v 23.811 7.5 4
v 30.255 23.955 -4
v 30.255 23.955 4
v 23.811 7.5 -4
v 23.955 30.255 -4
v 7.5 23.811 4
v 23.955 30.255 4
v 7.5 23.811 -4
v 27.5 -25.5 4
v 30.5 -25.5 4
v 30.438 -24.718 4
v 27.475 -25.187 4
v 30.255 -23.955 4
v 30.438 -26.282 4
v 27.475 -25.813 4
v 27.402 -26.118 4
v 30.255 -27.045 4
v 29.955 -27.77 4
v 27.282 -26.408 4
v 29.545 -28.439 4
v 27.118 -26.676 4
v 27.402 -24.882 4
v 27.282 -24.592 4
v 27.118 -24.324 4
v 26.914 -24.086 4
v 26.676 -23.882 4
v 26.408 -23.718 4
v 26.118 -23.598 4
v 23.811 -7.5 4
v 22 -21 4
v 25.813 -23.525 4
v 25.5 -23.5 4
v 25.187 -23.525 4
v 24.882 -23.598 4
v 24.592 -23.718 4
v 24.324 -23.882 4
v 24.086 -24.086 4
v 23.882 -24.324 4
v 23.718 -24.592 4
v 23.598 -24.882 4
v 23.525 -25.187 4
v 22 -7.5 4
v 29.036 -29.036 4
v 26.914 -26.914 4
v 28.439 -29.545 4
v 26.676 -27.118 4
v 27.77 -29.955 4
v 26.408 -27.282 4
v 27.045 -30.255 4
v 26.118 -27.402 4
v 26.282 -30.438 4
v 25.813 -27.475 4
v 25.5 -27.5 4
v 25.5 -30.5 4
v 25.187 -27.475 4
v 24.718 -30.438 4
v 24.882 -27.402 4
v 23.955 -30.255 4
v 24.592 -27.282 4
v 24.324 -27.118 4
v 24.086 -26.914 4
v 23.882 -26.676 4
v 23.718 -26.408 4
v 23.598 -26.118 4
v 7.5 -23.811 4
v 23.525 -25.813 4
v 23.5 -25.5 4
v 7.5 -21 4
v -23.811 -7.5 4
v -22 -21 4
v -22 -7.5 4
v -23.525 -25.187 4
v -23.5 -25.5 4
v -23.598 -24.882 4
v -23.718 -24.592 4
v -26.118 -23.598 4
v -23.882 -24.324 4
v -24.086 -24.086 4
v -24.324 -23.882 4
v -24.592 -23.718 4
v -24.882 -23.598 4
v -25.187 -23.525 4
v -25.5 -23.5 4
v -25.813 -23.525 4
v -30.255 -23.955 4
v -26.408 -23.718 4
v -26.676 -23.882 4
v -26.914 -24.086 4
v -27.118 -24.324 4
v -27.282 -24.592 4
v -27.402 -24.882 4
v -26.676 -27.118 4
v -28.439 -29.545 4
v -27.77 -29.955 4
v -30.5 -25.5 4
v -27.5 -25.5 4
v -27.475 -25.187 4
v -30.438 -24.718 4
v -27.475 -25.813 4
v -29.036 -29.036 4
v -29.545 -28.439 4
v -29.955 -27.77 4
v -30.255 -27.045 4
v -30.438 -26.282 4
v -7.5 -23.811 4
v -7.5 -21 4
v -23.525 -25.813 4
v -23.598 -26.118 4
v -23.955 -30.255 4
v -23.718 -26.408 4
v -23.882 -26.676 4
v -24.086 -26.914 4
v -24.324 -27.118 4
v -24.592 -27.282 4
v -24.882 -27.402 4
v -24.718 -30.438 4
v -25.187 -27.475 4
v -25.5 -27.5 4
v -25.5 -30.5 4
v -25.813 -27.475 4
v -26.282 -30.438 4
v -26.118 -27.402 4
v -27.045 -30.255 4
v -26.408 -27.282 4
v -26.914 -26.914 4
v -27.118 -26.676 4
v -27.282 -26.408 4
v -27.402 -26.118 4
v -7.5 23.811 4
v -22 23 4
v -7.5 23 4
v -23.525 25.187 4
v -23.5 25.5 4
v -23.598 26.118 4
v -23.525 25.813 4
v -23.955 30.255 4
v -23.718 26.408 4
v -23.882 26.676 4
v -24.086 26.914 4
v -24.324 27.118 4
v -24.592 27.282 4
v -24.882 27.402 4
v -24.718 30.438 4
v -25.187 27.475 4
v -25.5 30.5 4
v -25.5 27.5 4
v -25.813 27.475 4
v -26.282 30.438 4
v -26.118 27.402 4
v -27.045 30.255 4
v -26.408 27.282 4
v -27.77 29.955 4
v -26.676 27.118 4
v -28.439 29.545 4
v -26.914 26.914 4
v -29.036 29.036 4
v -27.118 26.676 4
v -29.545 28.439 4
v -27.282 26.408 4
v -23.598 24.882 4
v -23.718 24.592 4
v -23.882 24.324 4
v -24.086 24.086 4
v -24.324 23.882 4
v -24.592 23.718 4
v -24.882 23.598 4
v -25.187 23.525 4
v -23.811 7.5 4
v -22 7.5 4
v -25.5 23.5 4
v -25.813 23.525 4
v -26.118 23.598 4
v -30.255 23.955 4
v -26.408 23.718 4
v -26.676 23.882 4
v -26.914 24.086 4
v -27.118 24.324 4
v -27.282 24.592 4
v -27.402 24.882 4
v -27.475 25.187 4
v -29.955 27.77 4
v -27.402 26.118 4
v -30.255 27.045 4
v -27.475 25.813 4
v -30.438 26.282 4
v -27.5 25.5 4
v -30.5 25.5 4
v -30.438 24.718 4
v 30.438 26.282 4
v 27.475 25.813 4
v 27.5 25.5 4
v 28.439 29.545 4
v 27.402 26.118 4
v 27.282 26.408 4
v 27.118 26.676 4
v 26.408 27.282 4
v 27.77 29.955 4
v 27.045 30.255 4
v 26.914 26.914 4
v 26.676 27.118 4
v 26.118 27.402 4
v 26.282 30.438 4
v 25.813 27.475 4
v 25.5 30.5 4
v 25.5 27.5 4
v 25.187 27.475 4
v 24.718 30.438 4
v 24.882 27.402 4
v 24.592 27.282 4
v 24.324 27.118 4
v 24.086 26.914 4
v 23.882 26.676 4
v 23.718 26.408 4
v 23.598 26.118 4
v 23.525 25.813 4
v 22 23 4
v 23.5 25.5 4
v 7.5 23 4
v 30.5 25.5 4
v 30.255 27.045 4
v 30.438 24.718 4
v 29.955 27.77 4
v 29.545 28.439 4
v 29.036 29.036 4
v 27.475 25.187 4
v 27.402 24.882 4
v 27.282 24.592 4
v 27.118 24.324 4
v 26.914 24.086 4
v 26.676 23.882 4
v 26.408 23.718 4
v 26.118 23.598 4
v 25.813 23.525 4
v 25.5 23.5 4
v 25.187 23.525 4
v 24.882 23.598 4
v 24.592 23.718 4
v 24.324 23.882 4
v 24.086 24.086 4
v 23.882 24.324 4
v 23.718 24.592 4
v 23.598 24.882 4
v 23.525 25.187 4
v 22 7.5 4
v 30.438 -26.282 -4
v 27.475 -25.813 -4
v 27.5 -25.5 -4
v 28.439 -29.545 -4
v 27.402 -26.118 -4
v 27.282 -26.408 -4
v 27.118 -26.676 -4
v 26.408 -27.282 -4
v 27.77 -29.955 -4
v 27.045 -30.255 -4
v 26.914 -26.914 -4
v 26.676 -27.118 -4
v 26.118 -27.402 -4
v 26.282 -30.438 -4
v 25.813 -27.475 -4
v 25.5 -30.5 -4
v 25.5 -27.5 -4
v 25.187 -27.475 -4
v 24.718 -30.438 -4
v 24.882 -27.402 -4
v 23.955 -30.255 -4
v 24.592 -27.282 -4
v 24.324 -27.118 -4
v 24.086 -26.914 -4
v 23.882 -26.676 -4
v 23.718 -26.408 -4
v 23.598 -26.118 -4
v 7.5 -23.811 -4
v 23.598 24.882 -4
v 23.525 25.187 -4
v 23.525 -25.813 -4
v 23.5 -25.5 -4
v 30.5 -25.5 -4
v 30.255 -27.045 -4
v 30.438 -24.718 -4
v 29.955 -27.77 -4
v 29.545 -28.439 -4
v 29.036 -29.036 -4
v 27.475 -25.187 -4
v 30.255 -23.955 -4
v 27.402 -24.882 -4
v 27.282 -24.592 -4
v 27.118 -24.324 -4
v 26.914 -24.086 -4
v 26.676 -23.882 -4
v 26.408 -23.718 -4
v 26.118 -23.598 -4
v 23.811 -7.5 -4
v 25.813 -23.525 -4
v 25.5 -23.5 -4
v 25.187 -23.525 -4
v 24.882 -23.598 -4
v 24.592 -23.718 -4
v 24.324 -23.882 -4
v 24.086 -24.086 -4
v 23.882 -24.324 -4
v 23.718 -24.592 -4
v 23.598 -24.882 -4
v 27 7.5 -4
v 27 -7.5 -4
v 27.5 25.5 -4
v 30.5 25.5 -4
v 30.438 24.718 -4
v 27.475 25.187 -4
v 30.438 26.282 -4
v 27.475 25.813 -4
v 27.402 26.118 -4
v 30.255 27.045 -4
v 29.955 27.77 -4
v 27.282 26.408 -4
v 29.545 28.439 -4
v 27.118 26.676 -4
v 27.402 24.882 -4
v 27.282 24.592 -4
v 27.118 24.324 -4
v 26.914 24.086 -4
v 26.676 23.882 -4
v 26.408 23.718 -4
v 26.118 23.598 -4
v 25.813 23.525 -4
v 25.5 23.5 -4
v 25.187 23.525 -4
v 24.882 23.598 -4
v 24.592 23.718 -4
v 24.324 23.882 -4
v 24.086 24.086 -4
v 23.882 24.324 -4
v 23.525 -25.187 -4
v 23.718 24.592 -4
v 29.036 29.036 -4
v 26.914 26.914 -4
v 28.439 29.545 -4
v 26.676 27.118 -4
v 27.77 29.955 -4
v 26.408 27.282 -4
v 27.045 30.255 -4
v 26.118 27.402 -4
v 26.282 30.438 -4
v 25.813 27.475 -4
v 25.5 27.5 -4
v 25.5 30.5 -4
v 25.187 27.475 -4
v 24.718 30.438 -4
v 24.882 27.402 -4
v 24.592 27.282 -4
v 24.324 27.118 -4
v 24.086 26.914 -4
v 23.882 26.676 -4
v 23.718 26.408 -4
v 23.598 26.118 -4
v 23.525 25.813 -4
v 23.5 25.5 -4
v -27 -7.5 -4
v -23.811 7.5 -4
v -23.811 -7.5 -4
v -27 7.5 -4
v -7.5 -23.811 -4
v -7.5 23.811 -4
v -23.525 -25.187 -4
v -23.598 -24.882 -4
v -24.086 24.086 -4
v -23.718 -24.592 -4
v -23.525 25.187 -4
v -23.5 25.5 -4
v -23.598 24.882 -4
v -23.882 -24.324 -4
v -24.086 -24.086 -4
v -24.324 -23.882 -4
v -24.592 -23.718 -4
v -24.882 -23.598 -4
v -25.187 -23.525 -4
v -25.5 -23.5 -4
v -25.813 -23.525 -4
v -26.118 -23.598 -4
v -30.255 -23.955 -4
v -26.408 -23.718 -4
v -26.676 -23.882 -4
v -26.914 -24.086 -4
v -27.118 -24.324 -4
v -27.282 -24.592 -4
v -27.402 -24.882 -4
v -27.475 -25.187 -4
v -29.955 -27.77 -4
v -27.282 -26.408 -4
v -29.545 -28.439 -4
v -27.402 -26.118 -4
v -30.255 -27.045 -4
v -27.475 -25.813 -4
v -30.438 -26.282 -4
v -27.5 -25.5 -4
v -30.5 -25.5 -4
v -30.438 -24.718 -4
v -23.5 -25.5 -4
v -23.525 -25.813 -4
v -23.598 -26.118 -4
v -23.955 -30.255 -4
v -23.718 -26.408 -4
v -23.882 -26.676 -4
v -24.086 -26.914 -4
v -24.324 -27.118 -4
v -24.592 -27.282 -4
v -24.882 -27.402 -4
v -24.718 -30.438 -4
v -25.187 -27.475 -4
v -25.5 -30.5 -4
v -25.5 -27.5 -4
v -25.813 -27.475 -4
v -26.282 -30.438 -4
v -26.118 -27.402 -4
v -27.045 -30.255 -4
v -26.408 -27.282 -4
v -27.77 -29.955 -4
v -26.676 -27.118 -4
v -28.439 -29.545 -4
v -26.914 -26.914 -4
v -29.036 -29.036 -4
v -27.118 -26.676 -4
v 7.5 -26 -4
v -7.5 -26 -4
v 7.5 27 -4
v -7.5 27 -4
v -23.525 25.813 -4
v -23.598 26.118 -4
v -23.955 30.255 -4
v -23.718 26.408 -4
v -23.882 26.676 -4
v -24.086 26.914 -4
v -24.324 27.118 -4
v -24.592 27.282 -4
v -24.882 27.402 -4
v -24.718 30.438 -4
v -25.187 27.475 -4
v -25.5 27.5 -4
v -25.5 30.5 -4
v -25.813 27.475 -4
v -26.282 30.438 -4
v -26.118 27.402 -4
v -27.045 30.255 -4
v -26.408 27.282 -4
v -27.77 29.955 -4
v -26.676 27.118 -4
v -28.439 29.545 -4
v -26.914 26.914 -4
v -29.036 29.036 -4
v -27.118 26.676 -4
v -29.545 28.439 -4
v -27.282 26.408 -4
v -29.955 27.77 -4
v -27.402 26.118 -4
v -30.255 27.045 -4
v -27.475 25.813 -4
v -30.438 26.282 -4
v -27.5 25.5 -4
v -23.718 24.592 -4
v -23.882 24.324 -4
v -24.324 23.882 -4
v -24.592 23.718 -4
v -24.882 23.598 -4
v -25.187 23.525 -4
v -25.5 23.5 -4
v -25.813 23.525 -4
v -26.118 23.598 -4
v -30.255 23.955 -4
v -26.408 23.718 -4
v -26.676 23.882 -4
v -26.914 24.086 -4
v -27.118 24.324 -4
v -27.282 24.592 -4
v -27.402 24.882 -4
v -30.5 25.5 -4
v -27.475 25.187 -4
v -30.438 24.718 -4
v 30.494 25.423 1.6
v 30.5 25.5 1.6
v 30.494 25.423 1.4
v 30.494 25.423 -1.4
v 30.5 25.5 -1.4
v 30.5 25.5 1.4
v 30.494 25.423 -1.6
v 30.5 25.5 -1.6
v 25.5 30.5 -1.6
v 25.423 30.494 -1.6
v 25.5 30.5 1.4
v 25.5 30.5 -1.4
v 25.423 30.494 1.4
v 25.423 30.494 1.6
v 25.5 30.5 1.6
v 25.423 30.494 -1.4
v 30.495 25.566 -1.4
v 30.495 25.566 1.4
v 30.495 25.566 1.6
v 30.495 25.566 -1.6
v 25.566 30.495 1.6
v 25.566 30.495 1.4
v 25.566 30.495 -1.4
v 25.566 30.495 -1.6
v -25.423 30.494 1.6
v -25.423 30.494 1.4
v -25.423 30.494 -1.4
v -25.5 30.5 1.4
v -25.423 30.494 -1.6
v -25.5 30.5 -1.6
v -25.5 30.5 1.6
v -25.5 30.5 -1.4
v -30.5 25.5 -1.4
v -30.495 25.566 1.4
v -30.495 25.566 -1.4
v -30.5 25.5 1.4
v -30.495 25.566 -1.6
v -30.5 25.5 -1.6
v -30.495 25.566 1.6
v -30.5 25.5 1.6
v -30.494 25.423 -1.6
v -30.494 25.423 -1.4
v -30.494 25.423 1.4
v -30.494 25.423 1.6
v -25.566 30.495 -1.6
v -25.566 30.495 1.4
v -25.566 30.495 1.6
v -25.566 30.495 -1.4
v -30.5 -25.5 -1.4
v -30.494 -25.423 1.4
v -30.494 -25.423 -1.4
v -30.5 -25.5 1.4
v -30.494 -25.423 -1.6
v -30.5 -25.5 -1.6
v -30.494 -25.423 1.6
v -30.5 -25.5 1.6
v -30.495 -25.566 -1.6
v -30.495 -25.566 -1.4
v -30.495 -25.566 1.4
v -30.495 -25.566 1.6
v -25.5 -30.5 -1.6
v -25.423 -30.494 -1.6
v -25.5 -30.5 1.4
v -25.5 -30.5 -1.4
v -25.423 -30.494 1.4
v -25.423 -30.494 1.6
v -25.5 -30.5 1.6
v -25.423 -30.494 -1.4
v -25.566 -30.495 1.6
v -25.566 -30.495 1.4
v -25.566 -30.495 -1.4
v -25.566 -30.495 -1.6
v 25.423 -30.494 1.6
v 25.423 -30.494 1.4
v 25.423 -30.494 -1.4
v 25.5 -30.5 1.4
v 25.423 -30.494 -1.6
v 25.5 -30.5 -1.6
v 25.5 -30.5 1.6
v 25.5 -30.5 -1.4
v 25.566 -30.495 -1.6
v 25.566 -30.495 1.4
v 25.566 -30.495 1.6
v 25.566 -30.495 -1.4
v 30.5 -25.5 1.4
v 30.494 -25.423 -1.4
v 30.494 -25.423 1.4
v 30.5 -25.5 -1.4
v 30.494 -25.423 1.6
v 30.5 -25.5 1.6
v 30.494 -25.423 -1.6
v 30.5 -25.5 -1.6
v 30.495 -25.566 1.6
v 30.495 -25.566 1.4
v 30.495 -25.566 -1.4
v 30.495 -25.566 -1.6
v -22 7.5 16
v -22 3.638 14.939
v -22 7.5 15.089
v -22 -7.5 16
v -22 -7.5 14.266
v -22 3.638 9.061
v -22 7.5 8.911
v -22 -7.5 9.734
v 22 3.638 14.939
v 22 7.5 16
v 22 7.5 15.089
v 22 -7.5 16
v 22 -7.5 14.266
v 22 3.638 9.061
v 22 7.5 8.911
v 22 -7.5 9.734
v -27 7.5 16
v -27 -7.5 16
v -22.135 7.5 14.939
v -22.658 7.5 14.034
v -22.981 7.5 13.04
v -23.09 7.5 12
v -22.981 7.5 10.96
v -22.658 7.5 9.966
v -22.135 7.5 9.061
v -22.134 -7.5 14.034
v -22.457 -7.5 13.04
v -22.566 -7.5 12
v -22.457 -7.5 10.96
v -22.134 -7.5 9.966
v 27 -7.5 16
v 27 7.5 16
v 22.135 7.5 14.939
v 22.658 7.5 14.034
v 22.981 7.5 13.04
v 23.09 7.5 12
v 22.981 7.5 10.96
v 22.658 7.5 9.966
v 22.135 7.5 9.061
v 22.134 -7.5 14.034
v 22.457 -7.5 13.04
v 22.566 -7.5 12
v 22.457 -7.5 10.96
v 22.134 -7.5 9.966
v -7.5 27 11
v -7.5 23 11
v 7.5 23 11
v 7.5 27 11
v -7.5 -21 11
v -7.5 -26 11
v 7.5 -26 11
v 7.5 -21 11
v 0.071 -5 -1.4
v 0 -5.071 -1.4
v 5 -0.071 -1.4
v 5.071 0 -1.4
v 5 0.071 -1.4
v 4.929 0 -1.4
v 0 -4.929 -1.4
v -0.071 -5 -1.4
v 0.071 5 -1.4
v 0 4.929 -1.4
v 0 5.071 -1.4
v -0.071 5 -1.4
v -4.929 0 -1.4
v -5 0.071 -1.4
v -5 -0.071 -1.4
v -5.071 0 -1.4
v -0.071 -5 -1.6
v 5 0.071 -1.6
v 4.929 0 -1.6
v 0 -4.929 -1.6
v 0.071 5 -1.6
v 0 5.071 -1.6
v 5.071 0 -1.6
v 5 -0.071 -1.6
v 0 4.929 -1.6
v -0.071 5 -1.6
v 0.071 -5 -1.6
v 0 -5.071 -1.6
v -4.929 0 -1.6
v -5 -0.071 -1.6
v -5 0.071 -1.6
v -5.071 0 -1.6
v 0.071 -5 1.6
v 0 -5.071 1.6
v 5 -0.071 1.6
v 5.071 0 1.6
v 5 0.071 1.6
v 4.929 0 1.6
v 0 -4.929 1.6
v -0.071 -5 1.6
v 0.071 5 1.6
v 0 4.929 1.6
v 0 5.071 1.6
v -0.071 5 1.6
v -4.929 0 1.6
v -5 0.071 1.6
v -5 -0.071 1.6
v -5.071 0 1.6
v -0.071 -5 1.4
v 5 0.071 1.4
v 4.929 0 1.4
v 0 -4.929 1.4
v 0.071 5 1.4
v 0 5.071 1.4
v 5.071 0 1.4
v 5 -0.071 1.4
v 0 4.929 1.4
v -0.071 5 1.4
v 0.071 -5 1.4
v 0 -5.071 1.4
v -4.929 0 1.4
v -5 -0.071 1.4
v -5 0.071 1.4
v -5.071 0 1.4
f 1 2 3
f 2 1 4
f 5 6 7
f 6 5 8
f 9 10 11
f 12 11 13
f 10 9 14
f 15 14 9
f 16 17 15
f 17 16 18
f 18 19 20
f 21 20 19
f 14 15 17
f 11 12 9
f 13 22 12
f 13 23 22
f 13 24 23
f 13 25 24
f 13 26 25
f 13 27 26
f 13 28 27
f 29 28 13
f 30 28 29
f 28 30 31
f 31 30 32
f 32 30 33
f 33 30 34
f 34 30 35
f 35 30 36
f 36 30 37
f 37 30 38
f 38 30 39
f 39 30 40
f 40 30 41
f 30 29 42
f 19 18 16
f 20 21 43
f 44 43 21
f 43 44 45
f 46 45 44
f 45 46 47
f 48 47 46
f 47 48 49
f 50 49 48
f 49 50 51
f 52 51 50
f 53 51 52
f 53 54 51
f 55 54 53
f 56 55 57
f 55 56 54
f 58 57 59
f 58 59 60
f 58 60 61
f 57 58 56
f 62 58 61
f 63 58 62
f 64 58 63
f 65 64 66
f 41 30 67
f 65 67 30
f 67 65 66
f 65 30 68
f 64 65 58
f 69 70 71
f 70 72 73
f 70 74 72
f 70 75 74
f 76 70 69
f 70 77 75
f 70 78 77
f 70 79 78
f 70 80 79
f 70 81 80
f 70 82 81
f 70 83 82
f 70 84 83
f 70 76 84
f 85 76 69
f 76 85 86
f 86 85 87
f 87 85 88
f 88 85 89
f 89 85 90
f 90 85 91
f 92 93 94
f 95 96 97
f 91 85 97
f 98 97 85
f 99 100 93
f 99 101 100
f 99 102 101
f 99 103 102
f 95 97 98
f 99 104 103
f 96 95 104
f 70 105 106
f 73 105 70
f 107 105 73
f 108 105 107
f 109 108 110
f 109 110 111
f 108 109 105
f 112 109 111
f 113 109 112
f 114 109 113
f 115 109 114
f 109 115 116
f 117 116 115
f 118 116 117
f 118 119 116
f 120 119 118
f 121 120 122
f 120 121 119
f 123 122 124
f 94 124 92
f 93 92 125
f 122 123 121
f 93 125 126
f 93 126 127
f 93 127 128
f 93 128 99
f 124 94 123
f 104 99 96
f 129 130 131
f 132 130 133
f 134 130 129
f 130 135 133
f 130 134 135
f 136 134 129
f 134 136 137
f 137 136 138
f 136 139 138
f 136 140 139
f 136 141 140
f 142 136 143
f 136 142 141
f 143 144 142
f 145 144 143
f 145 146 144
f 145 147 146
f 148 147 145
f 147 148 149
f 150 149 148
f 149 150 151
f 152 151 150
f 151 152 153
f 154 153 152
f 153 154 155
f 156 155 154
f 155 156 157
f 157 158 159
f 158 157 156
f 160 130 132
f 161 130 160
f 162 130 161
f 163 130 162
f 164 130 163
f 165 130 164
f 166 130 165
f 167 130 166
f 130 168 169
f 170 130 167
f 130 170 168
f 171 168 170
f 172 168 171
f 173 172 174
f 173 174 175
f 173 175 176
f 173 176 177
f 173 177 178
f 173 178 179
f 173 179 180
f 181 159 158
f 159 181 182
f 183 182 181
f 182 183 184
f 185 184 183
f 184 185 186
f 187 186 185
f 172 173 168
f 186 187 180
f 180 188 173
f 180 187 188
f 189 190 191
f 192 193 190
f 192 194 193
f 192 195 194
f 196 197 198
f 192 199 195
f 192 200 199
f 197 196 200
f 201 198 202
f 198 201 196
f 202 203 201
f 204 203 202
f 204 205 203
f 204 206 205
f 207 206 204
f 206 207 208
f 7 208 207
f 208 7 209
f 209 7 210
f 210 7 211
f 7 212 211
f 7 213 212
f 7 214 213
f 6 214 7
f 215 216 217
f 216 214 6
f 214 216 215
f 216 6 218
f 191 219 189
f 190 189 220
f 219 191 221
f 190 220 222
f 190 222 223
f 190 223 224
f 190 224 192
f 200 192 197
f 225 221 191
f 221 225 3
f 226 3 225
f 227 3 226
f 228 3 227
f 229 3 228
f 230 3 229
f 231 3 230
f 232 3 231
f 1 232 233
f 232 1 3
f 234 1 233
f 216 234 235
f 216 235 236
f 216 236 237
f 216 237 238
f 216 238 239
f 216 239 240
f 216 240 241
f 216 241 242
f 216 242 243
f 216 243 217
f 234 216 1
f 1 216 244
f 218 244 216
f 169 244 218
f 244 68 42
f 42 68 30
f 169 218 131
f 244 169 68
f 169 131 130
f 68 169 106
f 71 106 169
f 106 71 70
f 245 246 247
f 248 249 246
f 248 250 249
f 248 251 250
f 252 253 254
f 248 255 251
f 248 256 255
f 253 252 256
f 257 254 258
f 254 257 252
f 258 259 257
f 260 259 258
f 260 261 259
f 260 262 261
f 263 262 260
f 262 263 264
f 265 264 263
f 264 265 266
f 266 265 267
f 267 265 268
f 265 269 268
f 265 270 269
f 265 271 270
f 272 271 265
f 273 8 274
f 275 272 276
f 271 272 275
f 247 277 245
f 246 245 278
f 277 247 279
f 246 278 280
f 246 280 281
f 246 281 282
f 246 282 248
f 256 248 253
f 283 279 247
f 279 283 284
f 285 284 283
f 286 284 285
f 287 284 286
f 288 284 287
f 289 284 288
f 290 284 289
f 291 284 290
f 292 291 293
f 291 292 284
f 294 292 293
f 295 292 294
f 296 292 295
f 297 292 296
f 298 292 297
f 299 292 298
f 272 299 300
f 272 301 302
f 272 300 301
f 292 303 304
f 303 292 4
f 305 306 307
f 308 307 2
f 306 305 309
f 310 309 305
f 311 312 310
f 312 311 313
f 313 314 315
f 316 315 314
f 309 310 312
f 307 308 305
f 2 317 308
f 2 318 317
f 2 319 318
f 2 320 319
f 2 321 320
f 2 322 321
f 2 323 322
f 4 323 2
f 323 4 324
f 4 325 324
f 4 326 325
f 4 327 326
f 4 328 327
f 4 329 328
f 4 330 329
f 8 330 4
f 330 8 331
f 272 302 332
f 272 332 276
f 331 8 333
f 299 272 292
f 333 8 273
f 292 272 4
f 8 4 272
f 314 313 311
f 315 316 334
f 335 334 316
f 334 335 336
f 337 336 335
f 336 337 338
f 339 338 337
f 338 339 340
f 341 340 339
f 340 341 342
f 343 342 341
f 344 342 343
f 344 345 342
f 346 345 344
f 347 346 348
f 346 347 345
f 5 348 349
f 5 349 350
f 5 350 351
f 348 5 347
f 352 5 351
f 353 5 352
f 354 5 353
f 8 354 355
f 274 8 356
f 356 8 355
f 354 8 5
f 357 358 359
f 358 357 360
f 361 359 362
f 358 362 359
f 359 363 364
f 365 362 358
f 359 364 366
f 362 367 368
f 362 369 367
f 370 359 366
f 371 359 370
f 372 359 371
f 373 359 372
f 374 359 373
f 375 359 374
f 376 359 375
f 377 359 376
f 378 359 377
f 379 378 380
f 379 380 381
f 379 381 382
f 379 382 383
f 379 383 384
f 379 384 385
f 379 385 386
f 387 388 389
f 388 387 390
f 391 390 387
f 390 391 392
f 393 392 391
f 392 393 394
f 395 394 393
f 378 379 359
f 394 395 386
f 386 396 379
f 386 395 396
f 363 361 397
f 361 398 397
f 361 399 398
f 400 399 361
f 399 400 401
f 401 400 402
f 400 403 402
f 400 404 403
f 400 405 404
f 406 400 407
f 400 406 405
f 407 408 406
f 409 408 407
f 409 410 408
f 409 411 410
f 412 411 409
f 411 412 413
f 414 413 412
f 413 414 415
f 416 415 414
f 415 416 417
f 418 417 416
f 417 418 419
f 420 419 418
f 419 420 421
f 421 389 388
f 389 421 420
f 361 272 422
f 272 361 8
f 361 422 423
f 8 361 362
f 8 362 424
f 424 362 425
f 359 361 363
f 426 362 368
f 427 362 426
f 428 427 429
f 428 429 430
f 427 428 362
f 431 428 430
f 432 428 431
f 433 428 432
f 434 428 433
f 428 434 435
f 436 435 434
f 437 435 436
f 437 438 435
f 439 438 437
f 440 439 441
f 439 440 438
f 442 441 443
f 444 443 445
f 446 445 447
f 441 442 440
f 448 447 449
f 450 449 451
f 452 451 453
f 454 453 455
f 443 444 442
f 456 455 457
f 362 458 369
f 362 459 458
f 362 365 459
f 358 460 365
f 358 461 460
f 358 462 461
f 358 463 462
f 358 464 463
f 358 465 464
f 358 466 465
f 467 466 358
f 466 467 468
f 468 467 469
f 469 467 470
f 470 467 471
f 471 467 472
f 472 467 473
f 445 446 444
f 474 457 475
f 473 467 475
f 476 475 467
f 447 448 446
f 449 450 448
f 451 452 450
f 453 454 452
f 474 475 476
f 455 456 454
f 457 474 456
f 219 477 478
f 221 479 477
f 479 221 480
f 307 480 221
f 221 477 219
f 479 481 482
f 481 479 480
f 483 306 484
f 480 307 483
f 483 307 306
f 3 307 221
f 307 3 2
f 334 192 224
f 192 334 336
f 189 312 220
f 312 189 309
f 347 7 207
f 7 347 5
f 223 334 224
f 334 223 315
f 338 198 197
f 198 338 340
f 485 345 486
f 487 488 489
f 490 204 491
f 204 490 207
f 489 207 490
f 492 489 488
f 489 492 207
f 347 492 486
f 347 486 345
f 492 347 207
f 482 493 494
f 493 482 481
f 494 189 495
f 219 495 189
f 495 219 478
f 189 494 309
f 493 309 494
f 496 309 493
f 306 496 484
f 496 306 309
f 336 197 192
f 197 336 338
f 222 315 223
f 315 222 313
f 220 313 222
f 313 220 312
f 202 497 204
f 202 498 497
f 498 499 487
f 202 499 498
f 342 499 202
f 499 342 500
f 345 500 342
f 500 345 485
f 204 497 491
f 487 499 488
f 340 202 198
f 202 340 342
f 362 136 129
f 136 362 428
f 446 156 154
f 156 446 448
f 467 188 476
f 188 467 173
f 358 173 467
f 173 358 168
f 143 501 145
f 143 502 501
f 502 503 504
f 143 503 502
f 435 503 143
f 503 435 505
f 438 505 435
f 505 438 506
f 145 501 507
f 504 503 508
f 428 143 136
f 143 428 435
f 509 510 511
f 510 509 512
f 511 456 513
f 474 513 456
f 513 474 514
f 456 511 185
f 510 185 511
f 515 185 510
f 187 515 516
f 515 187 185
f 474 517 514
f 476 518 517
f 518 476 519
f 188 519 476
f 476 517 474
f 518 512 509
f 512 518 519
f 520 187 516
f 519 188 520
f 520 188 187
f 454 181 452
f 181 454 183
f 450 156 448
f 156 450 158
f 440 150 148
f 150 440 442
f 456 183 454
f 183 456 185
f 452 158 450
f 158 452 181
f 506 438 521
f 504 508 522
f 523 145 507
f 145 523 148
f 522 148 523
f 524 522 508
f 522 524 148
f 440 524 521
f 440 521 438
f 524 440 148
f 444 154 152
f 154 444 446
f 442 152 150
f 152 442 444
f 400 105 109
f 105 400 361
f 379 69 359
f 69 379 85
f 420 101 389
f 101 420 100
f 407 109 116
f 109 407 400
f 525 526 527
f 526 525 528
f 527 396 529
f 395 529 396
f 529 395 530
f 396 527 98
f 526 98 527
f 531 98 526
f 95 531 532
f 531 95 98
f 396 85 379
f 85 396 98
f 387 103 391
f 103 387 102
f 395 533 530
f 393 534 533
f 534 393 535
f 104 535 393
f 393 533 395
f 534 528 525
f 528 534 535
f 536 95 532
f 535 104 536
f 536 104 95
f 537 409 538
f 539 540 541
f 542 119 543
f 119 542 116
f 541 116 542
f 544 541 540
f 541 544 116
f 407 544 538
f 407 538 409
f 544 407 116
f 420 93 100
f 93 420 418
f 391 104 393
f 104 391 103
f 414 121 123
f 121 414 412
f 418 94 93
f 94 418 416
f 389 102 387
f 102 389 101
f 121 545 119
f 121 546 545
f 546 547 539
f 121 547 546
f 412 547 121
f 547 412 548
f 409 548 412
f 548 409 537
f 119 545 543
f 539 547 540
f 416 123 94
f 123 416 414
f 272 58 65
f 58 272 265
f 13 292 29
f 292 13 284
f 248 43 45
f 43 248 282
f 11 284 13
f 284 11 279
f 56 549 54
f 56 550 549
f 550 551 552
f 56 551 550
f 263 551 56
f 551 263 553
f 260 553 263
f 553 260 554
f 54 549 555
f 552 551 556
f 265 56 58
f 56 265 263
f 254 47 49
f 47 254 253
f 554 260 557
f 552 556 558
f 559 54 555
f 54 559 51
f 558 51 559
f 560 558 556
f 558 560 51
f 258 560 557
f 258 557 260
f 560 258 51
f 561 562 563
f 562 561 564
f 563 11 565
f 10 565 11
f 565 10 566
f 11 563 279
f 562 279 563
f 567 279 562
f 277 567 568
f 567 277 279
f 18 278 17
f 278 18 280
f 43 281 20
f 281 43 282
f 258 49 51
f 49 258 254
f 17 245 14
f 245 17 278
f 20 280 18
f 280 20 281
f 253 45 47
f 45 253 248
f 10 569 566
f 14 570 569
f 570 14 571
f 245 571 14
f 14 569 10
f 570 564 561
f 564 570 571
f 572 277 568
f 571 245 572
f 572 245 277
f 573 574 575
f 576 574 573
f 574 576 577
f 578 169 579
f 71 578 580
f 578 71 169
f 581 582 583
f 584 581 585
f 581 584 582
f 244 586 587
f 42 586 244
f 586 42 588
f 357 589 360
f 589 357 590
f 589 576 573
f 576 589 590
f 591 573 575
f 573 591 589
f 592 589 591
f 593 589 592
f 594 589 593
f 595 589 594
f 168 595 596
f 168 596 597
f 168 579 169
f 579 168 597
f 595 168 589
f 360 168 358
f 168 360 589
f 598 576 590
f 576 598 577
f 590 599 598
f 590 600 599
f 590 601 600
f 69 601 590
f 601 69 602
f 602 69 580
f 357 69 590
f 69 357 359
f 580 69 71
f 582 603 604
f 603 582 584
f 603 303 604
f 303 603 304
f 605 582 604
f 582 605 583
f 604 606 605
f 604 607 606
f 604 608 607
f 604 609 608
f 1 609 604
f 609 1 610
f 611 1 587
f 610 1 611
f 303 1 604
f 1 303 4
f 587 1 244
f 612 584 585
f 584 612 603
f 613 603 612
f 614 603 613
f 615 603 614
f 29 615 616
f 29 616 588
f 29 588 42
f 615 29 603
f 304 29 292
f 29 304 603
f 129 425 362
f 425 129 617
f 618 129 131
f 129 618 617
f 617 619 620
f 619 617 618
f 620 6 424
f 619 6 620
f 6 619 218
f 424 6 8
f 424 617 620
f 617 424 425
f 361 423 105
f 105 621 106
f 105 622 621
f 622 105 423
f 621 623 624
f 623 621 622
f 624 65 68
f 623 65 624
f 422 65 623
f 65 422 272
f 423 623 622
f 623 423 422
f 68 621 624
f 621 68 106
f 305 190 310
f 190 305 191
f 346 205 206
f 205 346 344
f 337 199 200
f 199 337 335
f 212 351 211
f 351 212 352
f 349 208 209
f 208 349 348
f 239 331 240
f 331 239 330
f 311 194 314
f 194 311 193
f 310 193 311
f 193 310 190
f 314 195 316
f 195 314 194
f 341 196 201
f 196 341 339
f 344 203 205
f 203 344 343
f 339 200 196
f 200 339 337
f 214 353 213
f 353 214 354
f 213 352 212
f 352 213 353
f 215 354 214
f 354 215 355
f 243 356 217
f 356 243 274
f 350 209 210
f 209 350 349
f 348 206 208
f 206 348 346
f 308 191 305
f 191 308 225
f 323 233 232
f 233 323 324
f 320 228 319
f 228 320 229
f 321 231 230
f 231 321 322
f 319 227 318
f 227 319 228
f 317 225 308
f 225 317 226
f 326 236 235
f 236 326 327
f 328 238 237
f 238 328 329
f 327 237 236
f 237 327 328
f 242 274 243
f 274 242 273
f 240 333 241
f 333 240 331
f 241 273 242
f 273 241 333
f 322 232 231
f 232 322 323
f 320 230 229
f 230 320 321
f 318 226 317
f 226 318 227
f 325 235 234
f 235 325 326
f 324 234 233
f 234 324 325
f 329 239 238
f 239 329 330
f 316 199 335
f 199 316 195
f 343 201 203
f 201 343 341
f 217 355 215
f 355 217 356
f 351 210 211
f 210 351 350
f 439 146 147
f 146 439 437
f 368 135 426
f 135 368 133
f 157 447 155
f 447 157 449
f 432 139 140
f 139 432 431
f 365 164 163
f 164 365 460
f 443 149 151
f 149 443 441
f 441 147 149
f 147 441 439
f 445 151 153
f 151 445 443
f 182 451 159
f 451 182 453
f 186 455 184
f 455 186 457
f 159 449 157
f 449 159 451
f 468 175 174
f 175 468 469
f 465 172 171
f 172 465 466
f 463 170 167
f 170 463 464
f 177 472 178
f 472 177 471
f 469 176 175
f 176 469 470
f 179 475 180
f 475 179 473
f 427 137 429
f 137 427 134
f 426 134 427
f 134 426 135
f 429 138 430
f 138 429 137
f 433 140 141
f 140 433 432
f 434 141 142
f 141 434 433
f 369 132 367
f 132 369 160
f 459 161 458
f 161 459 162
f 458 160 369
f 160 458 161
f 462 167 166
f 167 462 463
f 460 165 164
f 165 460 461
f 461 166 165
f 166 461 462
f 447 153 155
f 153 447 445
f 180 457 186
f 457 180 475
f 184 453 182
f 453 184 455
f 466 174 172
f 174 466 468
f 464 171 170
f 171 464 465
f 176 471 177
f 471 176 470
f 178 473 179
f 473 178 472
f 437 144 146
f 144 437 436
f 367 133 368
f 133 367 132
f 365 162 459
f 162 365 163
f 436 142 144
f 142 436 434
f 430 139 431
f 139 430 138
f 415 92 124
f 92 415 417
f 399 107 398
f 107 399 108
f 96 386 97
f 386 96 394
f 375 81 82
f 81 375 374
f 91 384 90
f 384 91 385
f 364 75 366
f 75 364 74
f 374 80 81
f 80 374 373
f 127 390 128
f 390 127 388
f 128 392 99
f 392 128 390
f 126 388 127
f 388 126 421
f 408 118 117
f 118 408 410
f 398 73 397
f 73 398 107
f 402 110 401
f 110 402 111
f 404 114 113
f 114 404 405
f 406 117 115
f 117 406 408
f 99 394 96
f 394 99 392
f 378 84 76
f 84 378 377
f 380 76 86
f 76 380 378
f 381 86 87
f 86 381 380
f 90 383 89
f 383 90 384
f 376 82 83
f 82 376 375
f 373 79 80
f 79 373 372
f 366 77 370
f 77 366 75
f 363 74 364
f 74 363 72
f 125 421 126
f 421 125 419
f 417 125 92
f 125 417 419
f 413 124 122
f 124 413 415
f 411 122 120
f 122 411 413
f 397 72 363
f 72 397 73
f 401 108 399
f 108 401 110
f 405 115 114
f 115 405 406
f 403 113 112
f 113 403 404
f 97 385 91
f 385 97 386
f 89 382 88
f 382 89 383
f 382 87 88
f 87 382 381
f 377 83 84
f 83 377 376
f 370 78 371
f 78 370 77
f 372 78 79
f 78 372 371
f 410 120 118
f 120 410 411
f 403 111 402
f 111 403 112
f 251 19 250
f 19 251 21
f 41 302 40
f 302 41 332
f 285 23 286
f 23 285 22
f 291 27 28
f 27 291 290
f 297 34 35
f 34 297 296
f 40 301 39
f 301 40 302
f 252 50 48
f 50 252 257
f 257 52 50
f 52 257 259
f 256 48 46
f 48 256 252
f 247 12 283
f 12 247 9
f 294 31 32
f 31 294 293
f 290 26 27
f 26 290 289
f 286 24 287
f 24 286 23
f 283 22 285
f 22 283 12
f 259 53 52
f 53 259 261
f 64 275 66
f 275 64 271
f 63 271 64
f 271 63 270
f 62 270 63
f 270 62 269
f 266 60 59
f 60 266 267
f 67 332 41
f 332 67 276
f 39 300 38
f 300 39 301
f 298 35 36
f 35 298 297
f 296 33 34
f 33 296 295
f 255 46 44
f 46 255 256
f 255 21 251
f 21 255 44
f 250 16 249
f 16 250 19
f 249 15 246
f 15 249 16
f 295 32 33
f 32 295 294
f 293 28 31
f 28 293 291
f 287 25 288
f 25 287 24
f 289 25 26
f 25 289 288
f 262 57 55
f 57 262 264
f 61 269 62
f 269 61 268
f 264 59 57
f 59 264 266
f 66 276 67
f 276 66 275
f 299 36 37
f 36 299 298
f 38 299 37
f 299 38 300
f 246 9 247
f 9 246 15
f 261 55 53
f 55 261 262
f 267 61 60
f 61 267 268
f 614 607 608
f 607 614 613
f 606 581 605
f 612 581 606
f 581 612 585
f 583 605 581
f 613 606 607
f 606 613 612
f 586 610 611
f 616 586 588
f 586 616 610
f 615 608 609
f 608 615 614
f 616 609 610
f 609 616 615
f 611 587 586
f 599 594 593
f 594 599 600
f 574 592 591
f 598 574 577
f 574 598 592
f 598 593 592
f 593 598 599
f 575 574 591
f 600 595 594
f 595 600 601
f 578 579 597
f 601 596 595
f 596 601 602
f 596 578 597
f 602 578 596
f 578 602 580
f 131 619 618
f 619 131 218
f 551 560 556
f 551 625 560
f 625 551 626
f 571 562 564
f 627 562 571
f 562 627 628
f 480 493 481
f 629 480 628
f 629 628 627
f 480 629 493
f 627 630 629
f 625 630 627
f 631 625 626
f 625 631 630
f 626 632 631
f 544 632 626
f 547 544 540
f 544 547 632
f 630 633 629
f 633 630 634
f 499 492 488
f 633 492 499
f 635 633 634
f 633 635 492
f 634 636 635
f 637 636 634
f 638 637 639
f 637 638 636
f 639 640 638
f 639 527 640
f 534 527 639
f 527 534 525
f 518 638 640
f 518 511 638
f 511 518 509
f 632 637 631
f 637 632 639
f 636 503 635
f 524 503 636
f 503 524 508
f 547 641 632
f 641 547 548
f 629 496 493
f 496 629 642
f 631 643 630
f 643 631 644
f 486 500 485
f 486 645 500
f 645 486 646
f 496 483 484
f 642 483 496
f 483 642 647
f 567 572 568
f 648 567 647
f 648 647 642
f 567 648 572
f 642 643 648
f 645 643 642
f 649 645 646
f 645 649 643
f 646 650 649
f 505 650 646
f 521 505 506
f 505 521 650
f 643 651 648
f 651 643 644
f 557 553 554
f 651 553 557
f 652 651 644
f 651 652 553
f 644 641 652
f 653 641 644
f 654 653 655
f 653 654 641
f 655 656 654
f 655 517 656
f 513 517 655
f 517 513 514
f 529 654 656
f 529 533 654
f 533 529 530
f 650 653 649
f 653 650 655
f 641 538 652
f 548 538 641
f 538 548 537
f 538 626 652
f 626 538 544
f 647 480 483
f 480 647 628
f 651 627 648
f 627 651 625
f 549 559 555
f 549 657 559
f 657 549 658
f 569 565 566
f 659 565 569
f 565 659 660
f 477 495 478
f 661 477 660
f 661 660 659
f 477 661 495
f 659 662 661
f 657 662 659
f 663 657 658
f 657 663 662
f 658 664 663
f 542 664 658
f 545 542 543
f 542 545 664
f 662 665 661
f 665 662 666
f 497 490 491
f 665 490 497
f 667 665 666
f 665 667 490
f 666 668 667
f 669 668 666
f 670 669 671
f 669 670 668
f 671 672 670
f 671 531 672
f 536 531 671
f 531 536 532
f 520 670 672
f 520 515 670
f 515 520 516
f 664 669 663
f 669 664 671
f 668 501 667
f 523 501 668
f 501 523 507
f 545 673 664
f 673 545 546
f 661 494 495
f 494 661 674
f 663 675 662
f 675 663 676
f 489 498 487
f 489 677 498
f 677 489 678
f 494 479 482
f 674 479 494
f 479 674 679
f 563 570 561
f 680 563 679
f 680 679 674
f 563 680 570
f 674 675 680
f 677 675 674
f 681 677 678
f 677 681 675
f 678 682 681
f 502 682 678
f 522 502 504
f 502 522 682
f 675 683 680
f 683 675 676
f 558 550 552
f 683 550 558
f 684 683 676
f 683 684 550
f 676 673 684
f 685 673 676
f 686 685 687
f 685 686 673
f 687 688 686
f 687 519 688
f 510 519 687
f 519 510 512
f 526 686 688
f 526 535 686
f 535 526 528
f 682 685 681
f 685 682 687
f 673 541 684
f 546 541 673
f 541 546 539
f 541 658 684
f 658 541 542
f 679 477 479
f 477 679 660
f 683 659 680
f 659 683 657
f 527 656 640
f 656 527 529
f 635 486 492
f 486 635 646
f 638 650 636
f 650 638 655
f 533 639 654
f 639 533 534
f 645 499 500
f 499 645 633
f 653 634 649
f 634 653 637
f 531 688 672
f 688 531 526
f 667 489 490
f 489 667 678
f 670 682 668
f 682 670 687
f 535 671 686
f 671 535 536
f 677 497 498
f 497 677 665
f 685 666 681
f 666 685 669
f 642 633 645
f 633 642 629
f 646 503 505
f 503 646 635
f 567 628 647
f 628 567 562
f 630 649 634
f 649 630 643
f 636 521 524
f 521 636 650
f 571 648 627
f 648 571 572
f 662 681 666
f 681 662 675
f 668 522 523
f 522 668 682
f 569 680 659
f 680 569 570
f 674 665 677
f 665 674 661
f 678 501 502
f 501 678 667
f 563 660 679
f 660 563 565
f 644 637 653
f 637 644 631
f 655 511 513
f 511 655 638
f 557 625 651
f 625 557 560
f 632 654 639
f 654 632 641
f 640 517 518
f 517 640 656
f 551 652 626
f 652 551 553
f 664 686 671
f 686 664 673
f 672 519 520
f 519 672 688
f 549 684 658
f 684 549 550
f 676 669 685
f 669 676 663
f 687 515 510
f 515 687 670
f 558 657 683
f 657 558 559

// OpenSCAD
// for DIY GPU block

//_holes();
//mock_gpu_block();
clamp();

//debug();

module mock_gpu_block() {
    union() {
        cube([44,44,16],center=true);

        translate([-44/2+4,4,0])
        rotate([-90,0,2])
        union() {
            cylinder(d=10,h=50,center=true,$fn=30);
            translate([0,0,50/2-1.5])
            rotate([20,0,0]) {
                cylinder(d=10,h=20);
                translate([0,0,3])
                cylinder(d=12.5,h=20);
            }
        }

        translate([44/2-4,4,0])
        rotate([-90,0,-2])
        union() {
            cylinder(d=10,h=50,center=true,$fn=30);
            translate([0,0,50/2-1.5])
            rotate([20,0,0]) {
                cylinder(d=10,h=20);
                translate([0,0,3])
                cylinder(d=12.5,h=20);
            }
        }
    }
}

module _holes(d=4, h=10) {
    for(i=[0:3]) {
        rotate([0,0,360/4*i])
        translate([51/2,51/2,0])
        cylinder(d=d,h=h,center=true,$fn=40);
    }
}

module clamp() {
    h = 8;
    difference() {
        union() {
            for(i=[0:3]) {
                rotate([0,0,360/4*i])
                hull() {
                    cube([30,30,h],center=true);
                    translate([51/2,51/2,0])
                    cylinder(d=10,h=h,center=true,$fn=40);
                }
            }
            cube([44,44,h],center=true);

            translate([-44/2-5/2,0,20/2-h/2])
            cube([5,15,20],center=true);

            translate([44/2+5/2,0,20/2-h/2])
            cube([5,15,20],center=true);

            translate([0,44/2+5/2,15/2-h/2])
            cube([15,5,15],center=true);

            translate([0,-44/2-5/2+1,15/2-h/2])
            cube([15,5,15],center=true);
        }
        _holes(d=4, h=10);
        
        translate([0,1,16/2+8/2])
        rotate([0,180,0])
        mock_gpu_block();
        
        // infill
        translate([5,0,0])
        rotate([0,0,45]) {
            translate([0,0,-1.5])
            cube([100,0.1,0.2],center=true);
            translate([0,0,1.5])
            cube([100,0.1,0.2],center=true);
        }

        translate([-5,0,0])
        rotate([0,0,45]) {
            translate([0,0,-1.5])
            cube([100,0.1,0.2],center=true);
            translate([0,0,1.5])
            cube([100,0.1,0.2],center=true);
        }
        
        translate([5,0,0])
        rotate([0,0,-45]) {
            translate([0,0,-1.5])
            cube([100,0.1,0.2],center=true);
            translate([0,0,1.5])
            cube([100,0.1,0.2],center=true);
        }

        translate([-5,0,0])
        rotate([0,0,-45]) {
            translate([0,0,-1.5])
            cube([100,0.1,0.2],center=true);
            translate([0,0,1.5])
            cube([100,0.1,0.2],center=true);
        }
    }
}

module debug() {
    mock_gpu_block();
    translate([0,-1,16/2+8/2])
    rotate([0,180,0])
    clamp();
}
